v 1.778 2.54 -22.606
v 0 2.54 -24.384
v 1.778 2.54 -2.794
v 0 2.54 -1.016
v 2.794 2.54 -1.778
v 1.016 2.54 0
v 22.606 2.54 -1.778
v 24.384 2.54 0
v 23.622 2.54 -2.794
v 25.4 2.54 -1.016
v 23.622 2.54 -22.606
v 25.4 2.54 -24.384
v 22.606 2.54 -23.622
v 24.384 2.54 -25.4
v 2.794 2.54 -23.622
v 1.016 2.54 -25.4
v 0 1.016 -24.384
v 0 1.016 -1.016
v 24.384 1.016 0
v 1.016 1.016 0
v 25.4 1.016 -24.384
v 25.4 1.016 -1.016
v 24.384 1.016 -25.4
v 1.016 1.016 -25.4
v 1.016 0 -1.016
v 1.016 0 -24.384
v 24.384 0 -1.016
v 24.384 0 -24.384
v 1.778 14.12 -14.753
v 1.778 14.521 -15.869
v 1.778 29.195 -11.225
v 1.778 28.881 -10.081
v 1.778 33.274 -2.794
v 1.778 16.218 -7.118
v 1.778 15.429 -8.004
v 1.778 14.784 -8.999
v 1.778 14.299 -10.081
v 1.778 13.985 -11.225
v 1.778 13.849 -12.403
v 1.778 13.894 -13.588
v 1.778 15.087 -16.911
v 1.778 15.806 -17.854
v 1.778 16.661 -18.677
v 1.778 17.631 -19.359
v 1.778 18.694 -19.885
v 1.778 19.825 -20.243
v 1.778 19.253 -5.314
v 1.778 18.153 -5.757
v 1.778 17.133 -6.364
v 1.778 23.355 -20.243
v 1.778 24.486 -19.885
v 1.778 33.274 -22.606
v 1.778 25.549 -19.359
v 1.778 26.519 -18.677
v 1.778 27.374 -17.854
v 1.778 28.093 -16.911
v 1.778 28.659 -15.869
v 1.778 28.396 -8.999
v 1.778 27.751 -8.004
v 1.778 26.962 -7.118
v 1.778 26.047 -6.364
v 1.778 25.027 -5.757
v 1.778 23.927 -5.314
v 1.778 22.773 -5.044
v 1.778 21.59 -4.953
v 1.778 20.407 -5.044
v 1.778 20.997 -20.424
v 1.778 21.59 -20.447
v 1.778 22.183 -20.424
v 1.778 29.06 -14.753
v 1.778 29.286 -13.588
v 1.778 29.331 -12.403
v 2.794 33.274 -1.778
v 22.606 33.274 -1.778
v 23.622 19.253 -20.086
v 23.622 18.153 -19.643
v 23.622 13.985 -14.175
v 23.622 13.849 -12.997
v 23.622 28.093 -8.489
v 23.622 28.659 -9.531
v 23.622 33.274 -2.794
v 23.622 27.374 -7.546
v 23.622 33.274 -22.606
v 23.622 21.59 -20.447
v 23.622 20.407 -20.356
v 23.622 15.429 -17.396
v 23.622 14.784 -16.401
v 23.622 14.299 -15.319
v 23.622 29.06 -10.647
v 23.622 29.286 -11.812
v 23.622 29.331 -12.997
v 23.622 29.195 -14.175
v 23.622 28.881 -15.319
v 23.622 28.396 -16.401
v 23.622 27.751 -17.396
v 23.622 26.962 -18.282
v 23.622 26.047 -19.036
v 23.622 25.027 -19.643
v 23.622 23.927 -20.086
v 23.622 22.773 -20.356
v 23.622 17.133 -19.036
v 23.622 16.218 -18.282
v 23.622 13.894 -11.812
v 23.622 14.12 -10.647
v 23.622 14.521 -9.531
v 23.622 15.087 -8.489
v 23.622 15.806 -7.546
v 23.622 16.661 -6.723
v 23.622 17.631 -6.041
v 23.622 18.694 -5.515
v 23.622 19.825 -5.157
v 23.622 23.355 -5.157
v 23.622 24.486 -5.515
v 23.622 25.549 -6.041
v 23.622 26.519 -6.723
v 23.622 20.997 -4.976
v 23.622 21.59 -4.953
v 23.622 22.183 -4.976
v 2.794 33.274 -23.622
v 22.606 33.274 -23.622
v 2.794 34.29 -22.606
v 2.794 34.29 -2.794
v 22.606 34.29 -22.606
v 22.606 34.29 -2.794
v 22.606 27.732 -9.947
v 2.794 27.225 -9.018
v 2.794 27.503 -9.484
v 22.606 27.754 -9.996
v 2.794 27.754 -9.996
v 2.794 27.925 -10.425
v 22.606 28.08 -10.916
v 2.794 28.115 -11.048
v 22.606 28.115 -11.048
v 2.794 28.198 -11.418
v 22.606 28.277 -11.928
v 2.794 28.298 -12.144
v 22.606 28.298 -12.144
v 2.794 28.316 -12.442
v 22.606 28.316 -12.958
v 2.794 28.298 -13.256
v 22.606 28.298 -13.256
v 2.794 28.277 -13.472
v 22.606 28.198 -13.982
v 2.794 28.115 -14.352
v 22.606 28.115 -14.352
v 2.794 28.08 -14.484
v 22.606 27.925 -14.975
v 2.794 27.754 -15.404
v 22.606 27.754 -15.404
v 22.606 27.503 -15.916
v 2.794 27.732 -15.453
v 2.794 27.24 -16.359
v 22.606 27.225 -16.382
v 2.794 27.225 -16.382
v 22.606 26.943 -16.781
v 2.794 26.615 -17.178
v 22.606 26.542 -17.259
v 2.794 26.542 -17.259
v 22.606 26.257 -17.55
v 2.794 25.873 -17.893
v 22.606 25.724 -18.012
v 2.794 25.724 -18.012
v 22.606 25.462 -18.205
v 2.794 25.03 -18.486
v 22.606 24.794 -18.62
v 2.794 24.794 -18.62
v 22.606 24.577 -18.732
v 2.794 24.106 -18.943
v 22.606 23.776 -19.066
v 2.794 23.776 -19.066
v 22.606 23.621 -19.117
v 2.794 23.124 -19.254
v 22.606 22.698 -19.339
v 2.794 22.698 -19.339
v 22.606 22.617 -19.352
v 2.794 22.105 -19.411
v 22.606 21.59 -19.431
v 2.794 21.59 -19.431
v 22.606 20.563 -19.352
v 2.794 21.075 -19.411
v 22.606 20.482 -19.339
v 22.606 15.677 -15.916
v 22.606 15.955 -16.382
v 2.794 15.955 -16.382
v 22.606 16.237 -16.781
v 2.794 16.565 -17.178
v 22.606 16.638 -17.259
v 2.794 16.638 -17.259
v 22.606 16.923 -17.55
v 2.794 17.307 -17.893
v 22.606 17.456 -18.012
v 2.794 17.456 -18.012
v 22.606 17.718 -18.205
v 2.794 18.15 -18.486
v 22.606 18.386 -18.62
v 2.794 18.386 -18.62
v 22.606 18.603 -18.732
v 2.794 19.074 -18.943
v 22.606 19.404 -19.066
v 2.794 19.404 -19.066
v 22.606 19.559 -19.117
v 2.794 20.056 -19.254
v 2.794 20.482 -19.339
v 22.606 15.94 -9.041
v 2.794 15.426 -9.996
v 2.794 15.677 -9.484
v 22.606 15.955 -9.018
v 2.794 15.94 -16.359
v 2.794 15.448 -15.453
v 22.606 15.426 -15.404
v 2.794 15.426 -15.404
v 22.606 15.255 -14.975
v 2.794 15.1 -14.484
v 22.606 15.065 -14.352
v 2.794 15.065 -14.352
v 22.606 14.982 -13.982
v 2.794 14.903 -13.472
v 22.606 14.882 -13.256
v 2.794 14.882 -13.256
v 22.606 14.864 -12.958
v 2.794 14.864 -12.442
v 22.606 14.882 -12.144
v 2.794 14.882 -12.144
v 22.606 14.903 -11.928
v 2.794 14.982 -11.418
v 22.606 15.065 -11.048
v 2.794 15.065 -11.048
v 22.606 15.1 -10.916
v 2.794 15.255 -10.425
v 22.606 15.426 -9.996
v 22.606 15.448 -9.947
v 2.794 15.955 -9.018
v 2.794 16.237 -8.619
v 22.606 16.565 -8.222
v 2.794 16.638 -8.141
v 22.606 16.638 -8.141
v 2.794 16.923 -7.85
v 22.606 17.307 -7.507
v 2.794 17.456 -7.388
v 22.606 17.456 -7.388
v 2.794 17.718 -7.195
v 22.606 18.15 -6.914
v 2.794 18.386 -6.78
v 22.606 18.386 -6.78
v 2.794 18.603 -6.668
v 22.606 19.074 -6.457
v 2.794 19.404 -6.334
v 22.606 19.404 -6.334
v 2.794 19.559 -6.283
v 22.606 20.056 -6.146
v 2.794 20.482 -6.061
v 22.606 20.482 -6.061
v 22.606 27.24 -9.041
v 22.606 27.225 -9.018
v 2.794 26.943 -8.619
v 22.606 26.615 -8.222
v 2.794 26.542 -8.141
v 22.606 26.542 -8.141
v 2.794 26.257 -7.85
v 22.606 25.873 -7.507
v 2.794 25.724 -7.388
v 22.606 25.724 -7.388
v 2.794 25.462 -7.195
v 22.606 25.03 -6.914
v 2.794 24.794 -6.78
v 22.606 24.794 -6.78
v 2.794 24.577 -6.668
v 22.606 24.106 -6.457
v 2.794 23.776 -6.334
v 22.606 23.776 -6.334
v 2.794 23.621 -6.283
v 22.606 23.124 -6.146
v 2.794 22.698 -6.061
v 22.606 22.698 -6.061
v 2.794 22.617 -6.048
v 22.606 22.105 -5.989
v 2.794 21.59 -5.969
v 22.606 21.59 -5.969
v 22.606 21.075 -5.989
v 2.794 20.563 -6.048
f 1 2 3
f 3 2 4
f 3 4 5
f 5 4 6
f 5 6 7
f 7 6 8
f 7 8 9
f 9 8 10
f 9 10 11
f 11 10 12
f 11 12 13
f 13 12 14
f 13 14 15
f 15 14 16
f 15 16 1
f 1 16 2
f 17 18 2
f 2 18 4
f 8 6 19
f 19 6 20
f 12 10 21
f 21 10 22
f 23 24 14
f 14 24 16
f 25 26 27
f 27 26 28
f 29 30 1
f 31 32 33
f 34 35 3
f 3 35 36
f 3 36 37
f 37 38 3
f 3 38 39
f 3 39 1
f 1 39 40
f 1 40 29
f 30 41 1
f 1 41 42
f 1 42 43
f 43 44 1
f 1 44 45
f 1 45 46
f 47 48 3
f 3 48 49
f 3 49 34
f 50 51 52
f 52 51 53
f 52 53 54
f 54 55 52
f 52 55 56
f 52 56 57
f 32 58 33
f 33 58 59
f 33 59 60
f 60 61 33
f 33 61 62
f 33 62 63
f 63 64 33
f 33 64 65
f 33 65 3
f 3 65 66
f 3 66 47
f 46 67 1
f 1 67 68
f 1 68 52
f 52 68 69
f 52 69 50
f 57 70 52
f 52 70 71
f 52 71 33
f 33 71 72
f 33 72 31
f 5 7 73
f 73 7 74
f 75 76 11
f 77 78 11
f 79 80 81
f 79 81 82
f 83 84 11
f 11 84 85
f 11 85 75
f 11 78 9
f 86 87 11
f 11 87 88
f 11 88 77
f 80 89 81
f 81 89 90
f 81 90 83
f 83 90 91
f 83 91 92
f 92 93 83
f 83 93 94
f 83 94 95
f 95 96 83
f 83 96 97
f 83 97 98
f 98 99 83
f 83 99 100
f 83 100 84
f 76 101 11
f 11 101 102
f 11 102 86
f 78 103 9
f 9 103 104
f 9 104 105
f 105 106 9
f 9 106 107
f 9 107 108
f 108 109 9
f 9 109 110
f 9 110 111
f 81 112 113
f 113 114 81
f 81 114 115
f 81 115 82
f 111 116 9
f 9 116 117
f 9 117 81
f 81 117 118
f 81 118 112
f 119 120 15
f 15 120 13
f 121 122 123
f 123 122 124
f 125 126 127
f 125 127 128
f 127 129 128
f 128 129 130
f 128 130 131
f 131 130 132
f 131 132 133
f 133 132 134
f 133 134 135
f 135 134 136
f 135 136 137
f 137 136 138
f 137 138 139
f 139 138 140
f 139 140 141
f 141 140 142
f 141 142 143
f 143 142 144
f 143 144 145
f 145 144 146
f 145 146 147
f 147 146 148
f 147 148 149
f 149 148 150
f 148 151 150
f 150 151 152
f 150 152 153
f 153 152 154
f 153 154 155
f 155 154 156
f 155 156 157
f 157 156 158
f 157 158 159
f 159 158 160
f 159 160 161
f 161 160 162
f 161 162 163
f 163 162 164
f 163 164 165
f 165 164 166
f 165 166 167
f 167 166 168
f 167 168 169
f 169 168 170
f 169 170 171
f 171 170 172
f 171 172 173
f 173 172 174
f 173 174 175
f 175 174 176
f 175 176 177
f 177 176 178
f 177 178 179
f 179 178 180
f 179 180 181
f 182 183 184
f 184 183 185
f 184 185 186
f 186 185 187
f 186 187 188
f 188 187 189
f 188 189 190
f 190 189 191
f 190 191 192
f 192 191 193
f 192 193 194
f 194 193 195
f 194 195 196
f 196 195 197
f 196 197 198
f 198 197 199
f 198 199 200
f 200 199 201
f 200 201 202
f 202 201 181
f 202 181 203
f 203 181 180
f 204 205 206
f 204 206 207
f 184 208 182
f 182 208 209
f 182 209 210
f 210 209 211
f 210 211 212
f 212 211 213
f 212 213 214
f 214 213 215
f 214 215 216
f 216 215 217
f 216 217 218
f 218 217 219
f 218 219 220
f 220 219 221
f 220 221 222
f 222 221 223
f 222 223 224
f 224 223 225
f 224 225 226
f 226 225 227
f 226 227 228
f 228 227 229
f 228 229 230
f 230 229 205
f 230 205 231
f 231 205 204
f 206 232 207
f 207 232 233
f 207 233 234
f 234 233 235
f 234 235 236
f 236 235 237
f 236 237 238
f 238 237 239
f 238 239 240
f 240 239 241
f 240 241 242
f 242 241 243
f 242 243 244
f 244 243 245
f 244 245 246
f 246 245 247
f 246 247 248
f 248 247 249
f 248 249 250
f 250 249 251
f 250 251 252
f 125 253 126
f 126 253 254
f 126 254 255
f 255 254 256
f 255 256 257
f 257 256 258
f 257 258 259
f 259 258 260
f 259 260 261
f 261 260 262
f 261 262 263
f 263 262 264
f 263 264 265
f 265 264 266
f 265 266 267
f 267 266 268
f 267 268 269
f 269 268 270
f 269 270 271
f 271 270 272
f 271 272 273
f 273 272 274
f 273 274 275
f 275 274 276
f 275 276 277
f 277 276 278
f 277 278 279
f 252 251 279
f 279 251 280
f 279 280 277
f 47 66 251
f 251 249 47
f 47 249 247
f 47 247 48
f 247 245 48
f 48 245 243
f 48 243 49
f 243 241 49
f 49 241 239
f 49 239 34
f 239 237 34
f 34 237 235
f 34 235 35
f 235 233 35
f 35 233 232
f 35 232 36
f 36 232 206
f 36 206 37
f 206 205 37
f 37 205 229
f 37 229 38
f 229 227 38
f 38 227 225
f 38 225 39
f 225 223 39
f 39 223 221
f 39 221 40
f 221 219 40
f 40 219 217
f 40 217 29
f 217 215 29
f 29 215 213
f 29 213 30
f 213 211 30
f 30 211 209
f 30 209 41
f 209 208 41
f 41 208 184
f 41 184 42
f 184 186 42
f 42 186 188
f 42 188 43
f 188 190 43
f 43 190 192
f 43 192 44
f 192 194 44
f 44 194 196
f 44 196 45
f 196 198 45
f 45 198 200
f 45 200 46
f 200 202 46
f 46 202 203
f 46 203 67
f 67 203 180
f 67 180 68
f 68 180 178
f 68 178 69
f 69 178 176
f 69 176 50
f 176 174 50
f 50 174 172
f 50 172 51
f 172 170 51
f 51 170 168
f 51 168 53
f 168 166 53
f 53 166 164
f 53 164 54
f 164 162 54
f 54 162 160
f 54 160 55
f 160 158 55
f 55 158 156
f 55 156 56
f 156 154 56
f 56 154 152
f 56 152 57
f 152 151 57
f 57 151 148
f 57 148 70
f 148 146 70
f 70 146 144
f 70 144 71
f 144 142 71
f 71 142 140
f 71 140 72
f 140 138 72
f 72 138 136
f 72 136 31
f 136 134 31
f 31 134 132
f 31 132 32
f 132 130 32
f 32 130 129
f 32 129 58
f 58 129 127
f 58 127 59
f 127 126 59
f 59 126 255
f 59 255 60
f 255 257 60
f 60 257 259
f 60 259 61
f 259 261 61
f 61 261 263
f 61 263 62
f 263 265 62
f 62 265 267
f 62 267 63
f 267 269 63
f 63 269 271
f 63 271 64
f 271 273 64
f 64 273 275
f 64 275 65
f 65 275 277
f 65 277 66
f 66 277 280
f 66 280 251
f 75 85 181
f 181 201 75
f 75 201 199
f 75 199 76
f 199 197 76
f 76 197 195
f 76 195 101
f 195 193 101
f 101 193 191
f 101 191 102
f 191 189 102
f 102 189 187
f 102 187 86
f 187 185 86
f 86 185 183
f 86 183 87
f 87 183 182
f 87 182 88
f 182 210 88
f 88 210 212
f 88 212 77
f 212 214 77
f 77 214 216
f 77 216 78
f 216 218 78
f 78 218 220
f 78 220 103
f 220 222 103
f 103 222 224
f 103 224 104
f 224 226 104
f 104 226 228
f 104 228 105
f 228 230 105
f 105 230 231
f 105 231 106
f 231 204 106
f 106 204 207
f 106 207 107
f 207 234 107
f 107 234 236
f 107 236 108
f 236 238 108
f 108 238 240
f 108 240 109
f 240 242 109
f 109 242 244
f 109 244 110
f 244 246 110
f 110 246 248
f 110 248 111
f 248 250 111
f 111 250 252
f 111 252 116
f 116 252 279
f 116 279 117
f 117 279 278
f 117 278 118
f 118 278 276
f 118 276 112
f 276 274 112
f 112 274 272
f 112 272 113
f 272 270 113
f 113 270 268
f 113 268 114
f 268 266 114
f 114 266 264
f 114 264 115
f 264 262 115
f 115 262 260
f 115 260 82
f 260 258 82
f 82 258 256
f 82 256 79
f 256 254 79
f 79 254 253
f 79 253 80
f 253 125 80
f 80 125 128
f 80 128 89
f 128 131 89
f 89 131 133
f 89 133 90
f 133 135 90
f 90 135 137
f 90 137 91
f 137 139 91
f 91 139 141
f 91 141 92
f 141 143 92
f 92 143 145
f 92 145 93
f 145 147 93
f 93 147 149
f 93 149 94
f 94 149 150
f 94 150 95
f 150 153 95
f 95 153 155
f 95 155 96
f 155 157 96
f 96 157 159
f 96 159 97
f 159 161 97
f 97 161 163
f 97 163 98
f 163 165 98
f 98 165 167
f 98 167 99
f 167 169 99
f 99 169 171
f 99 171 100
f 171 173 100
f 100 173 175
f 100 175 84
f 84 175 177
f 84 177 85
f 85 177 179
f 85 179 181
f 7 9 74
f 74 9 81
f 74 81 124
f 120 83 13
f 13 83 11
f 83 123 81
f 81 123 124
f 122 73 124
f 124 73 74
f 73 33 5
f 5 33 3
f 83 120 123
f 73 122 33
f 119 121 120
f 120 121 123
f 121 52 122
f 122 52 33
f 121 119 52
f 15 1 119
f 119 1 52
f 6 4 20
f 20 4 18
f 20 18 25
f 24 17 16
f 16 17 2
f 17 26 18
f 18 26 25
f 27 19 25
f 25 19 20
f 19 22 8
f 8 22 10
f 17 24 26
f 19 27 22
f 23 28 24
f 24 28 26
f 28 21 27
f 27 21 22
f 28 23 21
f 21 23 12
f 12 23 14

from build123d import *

# Parameters (mm, degrees)
SKETCH1_W           = 25.4
SKETCH1_H           = 25.4
BOSS_EXTRUDE1_DEPTH = 2.54
SKETCH2_W           = 21.844
SKETCH2_H           = 21.844
BOSS_EXTRUDE2_DEPTH = 31.75
SKETCH3_R           = 6.731
CUT_EXTRUDE1_DEPTH  = 49.774614135
CHAMFER1_SIZE       = 1.016


with BuildPart() as part:
    # Sketch1 → Boss-Extrude1 (new body)
    with BuildSketch(Plane(origin=(0, 0, 0), x_dir=(1, 0, 0), z_dir=(0, 1, 0))):
        with Locations((12.7, 12.7)):
            Rectangle(SKETCH1_W, SKETCH1_H)
    extrude(amount=BOSS_EXTRUDE1_DEPTH)

    # Sketch2 → Boss-Extrude2 (add)
    with BuildSketch(Plane(origin=(0, 2.54, 0), x_dir=(1, 0, 0), z_dir=(0, 1, 0))):
        with Locations((12.7, 12.7)):
            Rectangle(SKETCH2_W, SKETCH2_H)
    extrude(amount=BOSS_EXTRUDE2_DEPTH)

    # Sketch3 → Cut-Extrude1 (cut, through all)
    with BuildSketch(Plane.ZY.offset(-1.778)):
        with Locations((-12.7, 21.59)):
            Circle(SKETCH3_R)
    extrude(amount=-CUT_EXTRUDE1_DEPTH, mode=Mode.SUBTRACT)

    # Chamfer1
    chamfer1_edges = [part.edges().sort_by_distance(p)[0] for p in [
        (1.778, 18.415, -23.622),
        (1.778, 18.415, -1.778),
        (23.622, 18.415, -1.778),
        (23.622, 18.415, -23.622),
        (1.778, 34.29, -12.7),
        (12.7, 34.29, -1.778),
        (23.622, 34.29, -12.7),
        (12.7, 34.29, -23.622),
        (23.622, 21.59, -19.431),
        (1.778, 21.59, -19.431),
        (12.7, 0, -25.4),
        (25.4, 0, -12.7),
        (12.7, 0, 0),
        (0, 0, -12.7),
        (0, 1.27, -25.4),
        (25.4, 1.27, -25.4),
        (25.4, 1.27, 0),
        (0, 1.27, 0),
    ]]
    chamfer(chamfer1_edges, length=CHAMFER1_SIZE)


solid = part.part
